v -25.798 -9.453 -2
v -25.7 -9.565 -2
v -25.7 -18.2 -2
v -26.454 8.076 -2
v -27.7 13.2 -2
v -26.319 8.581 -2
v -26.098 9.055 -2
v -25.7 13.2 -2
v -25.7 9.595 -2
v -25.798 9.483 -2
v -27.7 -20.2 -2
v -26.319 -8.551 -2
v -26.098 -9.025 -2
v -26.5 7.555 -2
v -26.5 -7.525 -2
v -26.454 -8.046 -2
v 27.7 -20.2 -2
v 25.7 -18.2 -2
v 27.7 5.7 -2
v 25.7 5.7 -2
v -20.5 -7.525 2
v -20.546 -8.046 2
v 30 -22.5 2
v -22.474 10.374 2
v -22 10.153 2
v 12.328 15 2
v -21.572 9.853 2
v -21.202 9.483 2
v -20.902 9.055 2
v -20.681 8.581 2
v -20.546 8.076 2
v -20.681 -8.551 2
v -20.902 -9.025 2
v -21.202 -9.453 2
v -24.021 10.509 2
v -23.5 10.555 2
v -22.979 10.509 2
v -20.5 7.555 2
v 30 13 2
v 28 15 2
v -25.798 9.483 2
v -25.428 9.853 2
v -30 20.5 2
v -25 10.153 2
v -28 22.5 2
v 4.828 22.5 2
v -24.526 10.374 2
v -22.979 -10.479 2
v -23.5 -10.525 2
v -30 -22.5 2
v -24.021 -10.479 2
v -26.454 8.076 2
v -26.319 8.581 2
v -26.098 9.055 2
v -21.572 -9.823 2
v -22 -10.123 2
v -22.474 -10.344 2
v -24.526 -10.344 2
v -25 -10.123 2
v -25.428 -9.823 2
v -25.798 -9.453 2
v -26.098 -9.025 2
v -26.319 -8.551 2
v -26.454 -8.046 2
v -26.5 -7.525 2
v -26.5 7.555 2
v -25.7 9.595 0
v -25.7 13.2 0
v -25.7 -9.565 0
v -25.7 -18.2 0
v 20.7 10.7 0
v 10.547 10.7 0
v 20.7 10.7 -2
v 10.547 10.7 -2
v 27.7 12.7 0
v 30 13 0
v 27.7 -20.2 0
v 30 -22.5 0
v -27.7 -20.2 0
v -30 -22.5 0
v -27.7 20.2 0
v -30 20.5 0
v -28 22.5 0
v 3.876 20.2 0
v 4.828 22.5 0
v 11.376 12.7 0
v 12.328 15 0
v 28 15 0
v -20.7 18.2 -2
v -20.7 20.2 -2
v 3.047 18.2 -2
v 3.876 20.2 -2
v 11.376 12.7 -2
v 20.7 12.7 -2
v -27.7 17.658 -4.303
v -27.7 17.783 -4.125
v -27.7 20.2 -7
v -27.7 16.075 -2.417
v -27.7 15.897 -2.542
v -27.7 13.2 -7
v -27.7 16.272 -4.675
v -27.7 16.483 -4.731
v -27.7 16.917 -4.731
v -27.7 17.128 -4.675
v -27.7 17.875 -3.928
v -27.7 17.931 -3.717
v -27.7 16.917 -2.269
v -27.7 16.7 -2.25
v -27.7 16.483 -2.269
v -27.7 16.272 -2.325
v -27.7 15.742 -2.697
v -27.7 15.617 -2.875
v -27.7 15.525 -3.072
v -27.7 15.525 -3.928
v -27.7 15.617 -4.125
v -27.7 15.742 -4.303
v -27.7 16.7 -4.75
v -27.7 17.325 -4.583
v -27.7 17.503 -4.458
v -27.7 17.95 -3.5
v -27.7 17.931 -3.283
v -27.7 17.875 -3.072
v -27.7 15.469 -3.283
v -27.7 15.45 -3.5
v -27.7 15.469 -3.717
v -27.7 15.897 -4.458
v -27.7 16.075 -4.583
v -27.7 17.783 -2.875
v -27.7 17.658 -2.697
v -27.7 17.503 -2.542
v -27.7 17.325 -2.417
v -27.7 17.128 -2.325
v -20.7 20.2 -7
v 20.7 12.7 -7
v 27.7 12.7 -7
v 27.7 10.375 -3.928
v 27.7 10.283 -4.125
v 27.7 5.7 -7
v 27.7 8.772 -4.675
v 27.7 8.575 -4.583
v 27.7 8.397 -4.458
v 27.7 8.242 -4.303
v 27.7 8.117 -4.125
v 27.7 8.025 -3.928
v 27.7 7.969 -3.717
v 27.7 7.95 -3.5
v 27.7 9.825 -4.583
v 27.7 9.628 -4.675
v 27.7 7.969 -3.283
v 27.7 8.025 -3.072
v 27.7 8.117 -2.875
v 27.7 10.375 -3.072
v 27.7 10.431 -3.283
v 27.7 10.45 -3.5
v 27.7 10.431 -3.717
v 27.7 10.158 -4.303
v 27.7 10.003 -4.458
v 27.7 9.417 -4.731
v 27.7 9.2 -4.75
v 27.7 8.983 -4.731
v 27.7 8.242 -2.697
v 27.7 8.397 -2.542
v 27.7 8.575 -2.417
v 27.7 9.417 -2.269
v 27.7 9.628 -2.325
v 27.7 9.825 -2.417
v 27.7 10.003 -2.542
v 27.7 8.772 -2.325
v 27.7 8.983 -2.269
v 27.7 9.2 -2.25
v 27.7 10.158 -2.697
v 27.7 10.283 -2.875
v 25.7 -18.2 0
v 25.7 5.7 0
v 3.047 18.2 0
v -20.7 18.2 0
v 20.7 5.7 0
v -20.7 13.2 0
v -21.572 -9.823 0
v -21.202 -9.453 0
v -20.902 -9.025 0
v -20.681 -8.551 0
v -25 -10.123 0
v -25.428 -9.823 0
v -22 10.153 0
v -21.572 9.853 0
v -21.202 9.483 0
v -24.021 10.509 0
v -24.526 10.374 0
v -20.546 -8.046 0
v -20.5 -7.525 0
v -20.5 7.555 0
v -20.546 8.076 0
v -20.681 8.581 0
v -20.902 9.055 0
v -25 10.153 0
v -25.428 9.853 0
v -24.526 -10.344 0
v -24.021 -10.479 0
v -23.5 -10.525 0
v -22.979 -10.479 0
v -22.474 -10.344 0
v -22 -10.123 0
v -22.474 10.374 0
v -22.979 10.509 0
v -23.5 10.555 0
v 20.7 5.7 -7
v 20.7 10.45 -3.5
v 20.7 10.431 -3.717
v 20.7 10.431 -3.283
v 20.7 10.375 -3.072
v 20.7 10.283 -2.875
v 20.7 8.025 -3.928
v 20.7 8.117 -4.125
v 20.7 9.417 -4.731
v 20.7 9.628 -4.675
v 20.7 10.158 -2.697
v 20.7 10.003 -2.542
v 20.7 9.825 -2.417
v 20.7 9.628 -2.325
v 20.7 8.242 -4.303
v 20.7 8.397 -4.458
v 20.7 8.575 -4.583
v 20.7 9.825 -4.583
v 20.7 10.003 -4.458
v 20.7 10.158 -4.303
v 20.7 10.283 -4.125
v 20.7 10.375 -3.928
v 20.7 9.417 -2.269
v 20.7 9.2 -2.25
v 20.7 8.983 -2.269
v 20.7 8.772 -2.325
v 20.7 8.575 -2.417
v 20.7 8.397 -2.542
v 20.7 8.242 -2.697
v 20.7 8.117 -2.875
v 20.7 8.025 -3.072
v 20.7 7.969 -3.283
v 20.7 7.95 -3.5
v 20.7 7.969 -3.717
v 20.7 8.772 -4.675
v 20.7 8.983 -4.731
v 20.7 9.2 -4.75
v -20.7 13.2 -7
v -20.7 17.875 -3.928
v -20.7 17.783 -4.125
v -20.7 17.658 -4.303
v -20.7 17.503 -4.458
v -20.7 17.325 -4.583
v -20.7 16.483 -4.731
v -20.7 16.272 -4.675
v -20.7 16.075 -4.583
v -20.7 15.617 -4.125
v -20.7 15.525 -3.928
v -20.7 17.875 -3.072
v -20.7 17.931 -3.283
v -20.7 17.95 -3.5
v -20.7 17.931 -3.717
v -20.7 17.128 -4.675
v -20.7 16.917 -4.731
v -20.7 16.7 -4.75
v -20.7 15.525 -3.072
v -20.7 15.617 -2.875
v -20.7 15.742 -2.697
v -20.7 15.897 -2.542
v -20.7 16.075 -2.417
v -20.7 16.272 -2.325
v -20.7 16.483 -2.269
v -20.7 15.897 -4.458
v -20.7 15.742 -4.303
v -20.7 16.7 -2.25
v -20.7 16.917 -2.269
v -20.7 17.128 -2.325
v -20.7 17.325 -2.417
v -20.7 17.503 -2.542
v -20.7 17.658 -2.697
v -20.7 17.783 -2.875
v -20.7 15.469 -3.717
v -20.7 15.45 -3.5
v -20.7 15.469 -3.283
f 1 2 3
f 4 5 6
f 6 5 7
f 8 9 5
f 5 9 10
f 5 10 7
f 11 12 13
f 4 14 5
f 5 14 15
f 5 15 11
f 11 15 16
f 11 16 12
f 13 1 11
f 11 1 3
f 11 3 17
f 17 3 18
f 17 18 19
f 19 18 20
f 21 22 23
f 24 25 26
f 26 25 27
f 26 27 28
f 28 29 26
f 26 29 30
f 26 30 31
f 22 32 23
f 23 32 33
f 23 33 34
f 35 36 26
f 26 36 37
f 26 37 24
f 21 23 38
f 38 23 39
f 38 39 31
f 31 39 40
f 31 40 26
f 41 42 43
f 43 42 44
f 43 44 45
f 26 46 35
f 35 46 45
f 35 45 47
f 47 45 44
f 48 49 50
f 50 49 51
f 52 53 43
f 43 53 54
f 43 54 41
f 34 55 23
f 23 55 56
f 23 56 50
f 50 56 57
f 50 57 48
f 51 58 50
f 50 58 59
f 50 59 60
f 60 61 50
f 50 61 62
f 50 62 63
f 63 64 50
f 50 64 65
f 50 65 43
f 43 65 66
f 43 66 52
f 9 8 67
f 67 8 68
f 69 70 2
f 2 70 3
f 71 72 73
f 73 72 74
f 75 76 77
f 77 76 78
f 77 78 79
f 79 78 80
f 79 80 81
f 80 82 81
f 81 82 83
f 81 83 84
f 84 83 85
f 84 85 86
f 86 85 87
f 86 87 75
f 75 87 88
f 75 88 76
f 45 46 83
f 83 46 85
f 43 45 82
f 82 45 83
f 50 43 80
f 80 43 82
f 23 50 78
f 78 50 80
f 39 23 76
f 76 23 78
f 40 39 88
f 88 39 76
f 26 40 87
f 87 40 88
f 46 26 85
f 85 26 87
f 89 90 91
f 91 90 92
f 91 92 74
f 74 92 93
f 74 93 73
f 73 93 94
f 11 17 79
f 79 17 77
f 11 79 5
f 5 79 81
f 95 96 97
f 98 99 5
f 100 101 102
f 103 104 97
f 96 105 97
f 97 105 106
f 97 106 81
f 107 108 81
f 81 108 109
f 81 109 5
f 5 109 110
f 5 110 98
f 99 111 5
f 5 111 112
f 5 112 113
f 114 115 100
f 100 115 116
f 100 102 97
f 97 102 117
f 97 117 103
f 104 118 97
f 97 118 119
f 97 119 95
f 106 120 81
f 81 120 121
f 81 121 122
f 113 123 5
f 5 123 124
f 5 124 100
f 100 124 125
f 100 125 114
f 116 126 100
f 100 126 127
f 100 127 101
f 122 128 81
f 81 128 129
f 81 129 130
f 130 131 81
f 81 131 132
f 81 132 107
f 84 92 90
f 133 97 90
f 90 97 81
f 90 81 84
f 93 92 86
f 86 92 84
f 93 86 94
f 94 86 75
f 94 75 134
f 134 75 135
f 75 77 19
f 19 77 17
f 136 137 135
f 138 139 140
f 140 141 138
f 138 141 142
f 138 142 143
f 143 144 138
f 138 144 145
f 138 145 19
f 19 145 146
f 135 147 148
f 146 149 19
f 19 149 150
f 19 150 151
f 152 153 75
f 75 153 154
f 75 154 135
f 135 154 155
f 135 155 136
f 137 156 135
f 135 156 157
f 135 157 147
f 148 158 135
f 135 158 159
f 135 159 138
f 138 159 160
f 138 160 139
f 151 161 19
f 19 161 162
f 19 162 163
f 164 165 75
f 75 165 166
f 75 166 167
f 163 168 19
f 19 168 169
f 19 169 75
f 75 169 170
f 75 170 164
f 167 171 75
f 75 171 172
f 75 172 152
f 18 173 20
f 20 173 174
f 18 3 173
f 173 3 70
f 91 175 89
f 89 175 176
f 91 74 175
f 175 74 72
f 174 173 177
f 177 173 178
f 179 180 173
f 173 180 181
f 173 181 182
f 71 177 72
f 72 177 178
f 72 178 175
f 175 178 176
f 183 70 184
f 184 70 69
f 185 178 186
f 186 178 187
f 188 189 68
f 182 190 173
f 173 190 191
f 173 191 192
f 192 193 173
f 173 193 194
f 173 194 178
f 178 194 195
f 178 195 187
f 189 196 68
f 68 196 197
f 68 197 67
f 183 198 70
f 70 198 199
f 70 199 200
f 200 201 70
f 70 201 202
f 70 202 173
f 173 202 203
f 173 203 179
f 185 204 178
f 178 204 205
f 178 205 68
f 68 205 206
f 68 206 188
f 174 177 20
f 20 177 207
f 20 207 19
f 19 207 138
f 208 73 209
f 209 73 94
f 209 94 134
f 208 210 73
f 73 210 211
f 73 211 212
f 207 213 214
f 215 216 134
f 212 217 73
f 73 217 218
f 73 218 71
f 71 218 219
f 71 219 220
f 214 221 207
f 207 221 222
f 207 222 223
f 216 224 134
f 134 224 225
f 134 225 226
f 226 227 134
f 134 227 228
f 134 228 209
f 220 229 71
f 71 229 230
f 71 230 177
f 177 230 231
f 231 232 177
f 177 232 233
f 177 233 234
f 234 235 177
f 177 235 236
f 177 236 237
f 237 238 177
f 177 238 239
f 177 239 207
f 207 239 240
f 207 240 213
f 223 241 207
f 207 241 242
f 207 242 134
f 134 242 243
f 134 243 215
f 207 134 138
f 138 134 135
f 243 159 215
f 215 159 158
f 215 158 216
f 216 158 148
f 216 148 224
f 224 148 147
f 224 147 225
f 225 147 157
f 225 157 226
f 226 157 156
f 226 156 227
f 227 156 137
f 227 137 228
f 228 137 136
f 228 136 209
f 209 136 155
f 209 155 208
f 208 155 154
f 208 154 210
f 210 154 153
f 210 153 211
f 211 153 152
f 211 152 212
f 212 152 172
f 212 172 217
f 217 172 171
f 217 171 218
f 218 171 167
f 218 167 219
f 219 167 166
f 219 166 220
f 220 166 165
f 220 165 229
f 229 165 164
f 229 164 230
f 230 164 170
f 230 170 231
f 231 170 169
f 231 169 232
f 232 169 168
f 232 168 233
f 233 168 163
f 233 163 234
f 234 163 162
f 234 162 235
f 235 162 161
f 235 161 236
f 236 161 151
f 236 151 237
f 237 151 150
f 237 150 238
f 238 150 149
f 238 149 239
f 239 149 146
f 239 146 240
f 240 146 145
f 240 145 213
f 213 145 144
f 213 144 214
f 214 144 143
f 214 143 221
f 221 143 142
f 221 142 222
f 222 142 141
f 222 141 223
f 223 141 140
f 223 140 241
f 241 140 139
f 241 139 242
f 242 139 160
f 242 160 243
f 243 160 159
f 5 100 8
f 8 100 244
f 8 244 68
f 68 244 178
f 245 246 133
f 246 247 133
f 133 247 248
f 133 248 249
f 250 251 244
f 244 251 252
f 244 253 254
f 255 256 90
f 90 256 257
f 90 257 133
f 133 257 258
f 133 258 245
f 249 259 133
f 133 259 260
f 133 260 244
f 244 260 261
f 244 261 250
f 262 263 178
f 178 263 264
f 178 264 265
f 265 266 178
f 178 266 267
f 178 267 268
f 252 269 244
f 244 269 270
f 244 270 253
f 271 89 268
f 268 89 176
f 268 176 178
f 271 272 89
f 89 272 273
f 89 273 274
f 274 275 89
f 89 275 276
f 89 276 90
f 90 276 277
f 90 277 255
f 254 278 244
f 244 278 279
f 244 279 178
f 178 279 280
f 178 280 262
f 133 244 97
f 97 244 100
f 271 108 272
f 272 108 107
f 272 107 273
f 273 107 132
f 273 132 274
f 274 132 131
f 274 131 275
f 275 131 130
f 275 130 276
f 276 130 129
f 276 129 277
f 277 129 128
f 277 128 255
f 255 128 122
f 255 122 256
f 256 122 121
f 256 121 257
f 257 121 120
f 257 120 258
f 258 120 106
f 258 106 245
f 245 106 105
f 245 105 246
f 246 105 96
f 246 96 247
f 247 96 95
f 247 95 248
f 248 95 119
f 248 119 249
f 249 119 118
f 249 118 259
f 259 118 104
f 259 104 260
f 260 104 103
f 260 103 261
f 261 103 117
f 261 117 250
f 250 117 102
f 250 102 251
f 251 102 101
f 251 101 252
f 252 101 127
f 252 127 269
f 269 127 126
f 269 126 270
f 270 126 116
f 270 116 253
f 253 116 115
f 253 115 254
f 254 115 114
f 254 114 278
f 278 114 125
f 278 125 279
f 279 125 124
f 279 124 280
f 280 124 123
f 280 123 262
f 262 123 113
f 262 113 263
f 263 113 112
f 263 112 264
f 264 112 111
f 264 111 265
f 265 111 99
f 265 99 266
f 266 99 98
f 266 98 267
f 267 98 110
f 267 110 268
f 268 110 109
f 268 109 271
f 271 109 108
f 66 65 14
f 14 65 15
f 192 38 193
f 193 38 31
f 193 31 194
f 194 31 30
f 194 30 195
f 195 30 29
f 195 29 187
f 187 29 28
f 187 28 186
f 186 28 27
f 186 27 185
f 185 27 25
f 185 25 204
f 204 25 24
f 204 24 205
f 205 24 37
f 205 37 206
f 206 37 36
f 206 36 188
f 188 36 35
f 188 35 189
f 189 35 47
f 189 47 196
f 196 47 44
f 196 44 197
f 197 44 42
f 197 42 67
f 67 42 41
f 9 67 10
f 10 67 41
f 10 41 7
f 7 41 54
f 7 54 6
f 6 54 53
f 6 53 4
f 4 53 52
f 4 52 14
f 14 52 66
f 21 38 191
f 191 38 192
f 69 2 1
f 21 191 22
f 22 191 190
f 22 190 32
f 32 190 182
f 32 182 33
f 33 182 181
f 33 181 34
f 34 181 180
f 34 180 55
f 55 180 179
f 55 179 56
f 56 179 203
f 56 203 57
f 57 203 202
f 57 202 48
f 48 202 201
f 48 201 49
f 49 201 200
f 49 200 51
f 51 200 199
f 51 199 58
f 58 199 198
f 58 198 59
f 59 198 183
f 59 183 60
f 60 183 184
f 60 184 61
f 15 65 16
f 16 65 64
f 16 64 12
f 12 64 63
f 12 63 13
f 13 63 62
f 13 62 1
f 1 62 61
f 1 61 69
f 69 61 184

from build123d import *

# Parameters (mm, degrees)
EXTRUDE_1_DEPTH          = 2
EXTRUDE_3_DEPTH          = 2
SKETCH_5_W               = 7
SKETCH_5_H               = 7
SKETCH_5_R               = 1.25
EXTRUDE_4_DEPTH          = 7
SKETCH_6_W               = 7
SKETCH_6_H               = 7
SKETCH_6_R               = 1.25
EXTRUDE_5_DEPTH          = 7
CUT_EXTRUDE_1_DEPTH      = 7
CUT_EXTRUDE_1_DEPTH_BACK = 2


with BuildPart() as part:
    # Эскиз1 → Бобышка-Вытянуть1 (new body)
    with BuildSketch(Plane.XY):
        Polygon((-30, 20.5), (-28, 22.5), (4.828427125, 22.5), (12.328427125, 15), (28, 15), (30, 13), (30, -22.5), (-30, -22.5), align=None)
    extrude(amount=EXTRUDE_1_DEPTH)

    # Эскиз4 → Бобышка-Вытянуть3 (add)
    with BuildSketch(Plane(origin=(0, 0, 0), x_dir=(-1, 0, 0), z_dir=(0, 0, -1))):
        Polygon((-27.7, -20.2), (-27.7, 12.7), (-11.375735931, 12.7), (-3.875735931, 20.2), (27.7, 20.2), (27.7, -20.2), align=None)
        Polygon((-25.7, 10.7), (-10.547308807, 10.7), (-3.047308807, 18.2), (25.7, 18.2), (25.7, -18.2), (-25.7, -18.2), align=None, mode=Mode.SUBTRACT)
    extrude(amount=EXTRUDE_3_DEPTH)

    # Эскиз5 → Бобышка-Вытянуть4 (add)
    with BuildSketch(Plane(origin=(27.7, 0, 0), x_dir=(0, 0, -1), z_dir=(1, 0, 0))):
        with Locations((3.5, 9.2)):
            Rectangle(SKETCH_5_W, SKETCH_5_H)
        with Locations((3.5, 9.2)):
            Circle(SKETCH_5_R, mode=Mode.SUBTRACT)
    extrude(amount=-EXTRUDE_4_DEPTH)

    # Эскиз6 → Бобышка-Вытянуть5 (add)
    with BuildSketch(Plane.ZY.offset(27.7)):
        with Locations((-3.5, 16.7)):
            Rectangle(SKETCH_6_W, SKETCH_6_H)
        with Locations((-3.5, 16.7)):
            Circle(SKETCH_6_R, mode=Mode.SUBTRACT)
    extrude(amount=-EXTRUDE_5_DEPTH)

    # Эскиз7 → Вырез-Вытянуть1 (cut, two sides)
    with BuildSketch(Plane(origin=(0, 0, 0), x_dir=(-1, 0, 0), z_dir=(0, 0, -1))) as cut_extrude_1_sk:
        with BuildLine():
            Line((26.5, 7.555), (26.5, -7.525))
            ThreePointArc((26.5, -7.525), (23.5, -10.525), (20.5, -7.525))
            Line((20.5, -7.525), (20.5, 7.555))
            ThreePointArc((20.5, 7.555), (23.5, 10.555), (26.5, 7.555))
        make_face()
    extrude(amount=CUT_EXTRUDE_1_DEPTH, mode=Mode.SUBTRACT)
    extrude(cut_extrude_1_sk.sketch, amount=-CUT_EXTRUDE_1_DEPTH_BACK, mode=Mode.SUBTRACT)


solid = part.part
